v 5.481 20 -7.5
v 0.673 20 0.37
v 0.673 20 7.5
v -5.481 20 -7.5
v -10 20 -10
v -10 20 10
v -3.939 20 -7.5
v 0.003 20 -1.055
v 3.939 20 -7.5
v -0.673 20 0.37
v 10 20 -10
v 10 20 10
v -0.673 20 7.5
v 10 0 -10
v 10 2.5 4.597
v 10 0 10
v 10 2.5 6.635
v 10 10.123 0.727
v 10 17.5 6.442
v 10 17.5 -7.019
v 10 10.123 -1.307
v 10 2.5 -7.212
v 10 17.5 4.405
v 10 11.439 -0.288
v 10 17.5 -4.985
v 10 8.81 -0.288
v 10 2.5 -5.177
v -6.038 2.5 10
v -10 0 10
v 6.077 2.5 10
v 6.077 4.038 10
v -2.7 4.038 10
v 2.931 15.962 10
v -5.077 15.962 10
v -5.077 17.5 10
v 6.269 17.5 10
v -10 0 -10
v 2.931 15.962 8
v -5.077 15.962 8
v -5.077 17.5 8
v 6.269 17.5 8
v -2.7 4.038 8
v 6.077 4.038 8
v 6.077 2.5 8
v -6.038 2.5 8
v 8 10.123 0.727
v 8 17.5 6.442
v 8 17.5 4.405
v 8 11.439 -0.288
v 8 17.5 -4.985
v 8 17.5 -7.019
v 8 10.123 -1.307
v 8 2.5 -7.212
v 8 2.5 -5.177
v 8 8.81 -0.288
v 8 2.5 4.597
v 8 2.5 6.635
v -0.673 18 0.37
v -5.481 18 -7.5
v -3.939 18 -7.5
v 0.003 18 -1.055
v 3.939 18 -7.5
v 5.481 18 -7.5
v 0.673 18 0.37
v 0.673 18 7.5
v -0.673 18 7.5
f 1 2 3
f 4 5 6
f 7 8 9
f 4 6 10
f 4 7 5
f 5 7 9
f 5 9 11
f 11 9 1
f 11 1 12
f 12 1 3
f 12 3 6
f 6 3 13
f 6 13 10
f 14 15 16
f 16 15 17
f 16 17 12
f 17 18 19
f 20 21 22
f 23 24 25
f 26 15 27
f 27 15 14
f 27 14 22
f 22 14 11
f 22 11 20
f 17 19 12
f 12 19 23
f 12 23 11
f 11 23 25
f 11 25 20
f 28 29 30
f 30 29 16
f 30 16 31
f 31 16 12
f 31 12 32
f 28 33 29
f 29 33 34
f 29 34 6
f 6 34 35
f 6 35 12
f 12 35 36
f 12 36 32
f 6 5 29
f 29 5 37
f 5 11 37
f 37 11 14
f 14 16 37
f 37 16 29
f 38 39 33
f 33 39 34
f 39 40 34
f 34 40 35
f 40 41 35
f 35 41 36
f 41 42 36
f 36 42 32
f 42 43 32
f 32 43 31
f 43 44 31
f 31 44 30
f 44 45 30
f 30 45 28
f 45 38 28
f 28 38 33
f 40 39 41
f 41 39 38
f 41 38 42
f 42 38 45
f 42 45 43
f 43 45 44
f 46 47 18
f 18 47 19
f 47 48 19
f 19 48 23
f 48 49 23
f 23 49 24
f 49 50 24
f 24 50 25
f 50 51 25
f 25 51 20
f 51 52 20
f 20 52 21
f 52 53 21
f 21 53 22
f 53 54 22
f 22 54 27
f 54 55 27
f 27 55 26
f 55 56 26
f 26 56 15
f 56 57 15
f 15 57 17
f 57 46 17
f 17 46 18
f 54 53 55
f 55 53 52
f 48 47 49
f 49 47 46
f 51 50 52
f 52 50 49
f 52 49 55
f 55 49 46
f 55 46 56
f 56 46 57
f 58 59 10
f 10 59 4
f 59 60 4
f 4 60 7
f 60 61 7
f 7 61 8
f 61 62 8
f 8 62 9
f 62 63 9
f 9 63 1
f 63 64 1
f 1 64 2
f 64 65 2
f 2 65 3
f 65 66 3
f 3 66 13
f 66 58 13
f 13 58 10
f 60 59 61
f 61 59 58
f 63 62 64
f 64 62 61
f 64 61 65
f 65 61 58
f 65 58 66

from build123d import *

# Parameters (mm, degrees)
SKETCH1_W           = 20
SKETCH1_H           = 20
BOSS_EXTRUDE1_DEPTH = 20
CUT_EXTRUDE1_DEPTH  = 2
CUT_EXTRUDE2_DEPTH  = 2
CUT_EXTRUDE3_DEPTH  = 2


with BuildPart() as part:
    # Sketch1 → Boss-Extrude1 (new body)
    with BuildSketch(Plane(origin=(0, 0, 0), x_dir=(1, 0, 0), z_dir=(0, 1, 0))):
        Rectangle(SKETCH1_W, SKETCH1_H)
    extrude(amount=BOSS_EXTRUDE1_DEPTH)

    # Sketch2 → Cut-Extrude1 (cut)
    with BuildSketch(Plane.XY.offset(10)):
        Polygon((-5.076923077, 15.961538462), (-5.076923077, 17.5), (6.269230769, 17.5), (-2.700120192, 4.038461538), (6.076923077, 4.038461538), (6.076923077, 2.5), (-6.038461538, 2.5), (2.930889423, 15.961538462), align=None)
    extrude(amount=-CUT_EXTRUDE1_DEPTH, mode=Mode.SUBTRACT)

    # Sketch3 → Cut-Extrude2 (cut)
    with BuildSketch(Plane(origin=(10, 0, 0), x_dir=(0, 0, -1), z_dir=(1, 0, 0))):
        Polygon((-6.442307692, 17.5), (-4.405048077, 17.5), (0.288461538, 11.439302885), (4.984975962, 17.5), (7.019230769, 17.5), (1.307091346, 10.123197115), (7.211538462, 2.5), (5.177283654, 2.5), (0.288461538, 8.810096154), (-4.597355769, 2.5), (-6.634615385, 2.5), (-0.727163462, 10.123197115), align=None)
    extrude(amount=-CUT_EXTRUDE2_DEPTH, mode=Mode.SUBTRACT)

    # Sketch4 → Cut-Extrude3 (cut)
    with BuildSketch(Plane(origin=(0, 20, 0), x_dir=(1, 0, 0), z_dir=(0, 1, 0))):
        Polygon((-5.480769231, 7.5), (-3.939302885, 7.5), (0.003004808, 1.0546875), (3.939302885, 7.5), (5.480769231, 7.5), (0.673076923, -0.369591346), (0.673076923, -7.5), (-0.673076923, -7.5), (-0.673076923, -0.369591346), align=None)
    extrude(amount=-CUT_EXTRUDE3_DEPTH, mode=Mode.SUBTRACT)


solid = part.part
